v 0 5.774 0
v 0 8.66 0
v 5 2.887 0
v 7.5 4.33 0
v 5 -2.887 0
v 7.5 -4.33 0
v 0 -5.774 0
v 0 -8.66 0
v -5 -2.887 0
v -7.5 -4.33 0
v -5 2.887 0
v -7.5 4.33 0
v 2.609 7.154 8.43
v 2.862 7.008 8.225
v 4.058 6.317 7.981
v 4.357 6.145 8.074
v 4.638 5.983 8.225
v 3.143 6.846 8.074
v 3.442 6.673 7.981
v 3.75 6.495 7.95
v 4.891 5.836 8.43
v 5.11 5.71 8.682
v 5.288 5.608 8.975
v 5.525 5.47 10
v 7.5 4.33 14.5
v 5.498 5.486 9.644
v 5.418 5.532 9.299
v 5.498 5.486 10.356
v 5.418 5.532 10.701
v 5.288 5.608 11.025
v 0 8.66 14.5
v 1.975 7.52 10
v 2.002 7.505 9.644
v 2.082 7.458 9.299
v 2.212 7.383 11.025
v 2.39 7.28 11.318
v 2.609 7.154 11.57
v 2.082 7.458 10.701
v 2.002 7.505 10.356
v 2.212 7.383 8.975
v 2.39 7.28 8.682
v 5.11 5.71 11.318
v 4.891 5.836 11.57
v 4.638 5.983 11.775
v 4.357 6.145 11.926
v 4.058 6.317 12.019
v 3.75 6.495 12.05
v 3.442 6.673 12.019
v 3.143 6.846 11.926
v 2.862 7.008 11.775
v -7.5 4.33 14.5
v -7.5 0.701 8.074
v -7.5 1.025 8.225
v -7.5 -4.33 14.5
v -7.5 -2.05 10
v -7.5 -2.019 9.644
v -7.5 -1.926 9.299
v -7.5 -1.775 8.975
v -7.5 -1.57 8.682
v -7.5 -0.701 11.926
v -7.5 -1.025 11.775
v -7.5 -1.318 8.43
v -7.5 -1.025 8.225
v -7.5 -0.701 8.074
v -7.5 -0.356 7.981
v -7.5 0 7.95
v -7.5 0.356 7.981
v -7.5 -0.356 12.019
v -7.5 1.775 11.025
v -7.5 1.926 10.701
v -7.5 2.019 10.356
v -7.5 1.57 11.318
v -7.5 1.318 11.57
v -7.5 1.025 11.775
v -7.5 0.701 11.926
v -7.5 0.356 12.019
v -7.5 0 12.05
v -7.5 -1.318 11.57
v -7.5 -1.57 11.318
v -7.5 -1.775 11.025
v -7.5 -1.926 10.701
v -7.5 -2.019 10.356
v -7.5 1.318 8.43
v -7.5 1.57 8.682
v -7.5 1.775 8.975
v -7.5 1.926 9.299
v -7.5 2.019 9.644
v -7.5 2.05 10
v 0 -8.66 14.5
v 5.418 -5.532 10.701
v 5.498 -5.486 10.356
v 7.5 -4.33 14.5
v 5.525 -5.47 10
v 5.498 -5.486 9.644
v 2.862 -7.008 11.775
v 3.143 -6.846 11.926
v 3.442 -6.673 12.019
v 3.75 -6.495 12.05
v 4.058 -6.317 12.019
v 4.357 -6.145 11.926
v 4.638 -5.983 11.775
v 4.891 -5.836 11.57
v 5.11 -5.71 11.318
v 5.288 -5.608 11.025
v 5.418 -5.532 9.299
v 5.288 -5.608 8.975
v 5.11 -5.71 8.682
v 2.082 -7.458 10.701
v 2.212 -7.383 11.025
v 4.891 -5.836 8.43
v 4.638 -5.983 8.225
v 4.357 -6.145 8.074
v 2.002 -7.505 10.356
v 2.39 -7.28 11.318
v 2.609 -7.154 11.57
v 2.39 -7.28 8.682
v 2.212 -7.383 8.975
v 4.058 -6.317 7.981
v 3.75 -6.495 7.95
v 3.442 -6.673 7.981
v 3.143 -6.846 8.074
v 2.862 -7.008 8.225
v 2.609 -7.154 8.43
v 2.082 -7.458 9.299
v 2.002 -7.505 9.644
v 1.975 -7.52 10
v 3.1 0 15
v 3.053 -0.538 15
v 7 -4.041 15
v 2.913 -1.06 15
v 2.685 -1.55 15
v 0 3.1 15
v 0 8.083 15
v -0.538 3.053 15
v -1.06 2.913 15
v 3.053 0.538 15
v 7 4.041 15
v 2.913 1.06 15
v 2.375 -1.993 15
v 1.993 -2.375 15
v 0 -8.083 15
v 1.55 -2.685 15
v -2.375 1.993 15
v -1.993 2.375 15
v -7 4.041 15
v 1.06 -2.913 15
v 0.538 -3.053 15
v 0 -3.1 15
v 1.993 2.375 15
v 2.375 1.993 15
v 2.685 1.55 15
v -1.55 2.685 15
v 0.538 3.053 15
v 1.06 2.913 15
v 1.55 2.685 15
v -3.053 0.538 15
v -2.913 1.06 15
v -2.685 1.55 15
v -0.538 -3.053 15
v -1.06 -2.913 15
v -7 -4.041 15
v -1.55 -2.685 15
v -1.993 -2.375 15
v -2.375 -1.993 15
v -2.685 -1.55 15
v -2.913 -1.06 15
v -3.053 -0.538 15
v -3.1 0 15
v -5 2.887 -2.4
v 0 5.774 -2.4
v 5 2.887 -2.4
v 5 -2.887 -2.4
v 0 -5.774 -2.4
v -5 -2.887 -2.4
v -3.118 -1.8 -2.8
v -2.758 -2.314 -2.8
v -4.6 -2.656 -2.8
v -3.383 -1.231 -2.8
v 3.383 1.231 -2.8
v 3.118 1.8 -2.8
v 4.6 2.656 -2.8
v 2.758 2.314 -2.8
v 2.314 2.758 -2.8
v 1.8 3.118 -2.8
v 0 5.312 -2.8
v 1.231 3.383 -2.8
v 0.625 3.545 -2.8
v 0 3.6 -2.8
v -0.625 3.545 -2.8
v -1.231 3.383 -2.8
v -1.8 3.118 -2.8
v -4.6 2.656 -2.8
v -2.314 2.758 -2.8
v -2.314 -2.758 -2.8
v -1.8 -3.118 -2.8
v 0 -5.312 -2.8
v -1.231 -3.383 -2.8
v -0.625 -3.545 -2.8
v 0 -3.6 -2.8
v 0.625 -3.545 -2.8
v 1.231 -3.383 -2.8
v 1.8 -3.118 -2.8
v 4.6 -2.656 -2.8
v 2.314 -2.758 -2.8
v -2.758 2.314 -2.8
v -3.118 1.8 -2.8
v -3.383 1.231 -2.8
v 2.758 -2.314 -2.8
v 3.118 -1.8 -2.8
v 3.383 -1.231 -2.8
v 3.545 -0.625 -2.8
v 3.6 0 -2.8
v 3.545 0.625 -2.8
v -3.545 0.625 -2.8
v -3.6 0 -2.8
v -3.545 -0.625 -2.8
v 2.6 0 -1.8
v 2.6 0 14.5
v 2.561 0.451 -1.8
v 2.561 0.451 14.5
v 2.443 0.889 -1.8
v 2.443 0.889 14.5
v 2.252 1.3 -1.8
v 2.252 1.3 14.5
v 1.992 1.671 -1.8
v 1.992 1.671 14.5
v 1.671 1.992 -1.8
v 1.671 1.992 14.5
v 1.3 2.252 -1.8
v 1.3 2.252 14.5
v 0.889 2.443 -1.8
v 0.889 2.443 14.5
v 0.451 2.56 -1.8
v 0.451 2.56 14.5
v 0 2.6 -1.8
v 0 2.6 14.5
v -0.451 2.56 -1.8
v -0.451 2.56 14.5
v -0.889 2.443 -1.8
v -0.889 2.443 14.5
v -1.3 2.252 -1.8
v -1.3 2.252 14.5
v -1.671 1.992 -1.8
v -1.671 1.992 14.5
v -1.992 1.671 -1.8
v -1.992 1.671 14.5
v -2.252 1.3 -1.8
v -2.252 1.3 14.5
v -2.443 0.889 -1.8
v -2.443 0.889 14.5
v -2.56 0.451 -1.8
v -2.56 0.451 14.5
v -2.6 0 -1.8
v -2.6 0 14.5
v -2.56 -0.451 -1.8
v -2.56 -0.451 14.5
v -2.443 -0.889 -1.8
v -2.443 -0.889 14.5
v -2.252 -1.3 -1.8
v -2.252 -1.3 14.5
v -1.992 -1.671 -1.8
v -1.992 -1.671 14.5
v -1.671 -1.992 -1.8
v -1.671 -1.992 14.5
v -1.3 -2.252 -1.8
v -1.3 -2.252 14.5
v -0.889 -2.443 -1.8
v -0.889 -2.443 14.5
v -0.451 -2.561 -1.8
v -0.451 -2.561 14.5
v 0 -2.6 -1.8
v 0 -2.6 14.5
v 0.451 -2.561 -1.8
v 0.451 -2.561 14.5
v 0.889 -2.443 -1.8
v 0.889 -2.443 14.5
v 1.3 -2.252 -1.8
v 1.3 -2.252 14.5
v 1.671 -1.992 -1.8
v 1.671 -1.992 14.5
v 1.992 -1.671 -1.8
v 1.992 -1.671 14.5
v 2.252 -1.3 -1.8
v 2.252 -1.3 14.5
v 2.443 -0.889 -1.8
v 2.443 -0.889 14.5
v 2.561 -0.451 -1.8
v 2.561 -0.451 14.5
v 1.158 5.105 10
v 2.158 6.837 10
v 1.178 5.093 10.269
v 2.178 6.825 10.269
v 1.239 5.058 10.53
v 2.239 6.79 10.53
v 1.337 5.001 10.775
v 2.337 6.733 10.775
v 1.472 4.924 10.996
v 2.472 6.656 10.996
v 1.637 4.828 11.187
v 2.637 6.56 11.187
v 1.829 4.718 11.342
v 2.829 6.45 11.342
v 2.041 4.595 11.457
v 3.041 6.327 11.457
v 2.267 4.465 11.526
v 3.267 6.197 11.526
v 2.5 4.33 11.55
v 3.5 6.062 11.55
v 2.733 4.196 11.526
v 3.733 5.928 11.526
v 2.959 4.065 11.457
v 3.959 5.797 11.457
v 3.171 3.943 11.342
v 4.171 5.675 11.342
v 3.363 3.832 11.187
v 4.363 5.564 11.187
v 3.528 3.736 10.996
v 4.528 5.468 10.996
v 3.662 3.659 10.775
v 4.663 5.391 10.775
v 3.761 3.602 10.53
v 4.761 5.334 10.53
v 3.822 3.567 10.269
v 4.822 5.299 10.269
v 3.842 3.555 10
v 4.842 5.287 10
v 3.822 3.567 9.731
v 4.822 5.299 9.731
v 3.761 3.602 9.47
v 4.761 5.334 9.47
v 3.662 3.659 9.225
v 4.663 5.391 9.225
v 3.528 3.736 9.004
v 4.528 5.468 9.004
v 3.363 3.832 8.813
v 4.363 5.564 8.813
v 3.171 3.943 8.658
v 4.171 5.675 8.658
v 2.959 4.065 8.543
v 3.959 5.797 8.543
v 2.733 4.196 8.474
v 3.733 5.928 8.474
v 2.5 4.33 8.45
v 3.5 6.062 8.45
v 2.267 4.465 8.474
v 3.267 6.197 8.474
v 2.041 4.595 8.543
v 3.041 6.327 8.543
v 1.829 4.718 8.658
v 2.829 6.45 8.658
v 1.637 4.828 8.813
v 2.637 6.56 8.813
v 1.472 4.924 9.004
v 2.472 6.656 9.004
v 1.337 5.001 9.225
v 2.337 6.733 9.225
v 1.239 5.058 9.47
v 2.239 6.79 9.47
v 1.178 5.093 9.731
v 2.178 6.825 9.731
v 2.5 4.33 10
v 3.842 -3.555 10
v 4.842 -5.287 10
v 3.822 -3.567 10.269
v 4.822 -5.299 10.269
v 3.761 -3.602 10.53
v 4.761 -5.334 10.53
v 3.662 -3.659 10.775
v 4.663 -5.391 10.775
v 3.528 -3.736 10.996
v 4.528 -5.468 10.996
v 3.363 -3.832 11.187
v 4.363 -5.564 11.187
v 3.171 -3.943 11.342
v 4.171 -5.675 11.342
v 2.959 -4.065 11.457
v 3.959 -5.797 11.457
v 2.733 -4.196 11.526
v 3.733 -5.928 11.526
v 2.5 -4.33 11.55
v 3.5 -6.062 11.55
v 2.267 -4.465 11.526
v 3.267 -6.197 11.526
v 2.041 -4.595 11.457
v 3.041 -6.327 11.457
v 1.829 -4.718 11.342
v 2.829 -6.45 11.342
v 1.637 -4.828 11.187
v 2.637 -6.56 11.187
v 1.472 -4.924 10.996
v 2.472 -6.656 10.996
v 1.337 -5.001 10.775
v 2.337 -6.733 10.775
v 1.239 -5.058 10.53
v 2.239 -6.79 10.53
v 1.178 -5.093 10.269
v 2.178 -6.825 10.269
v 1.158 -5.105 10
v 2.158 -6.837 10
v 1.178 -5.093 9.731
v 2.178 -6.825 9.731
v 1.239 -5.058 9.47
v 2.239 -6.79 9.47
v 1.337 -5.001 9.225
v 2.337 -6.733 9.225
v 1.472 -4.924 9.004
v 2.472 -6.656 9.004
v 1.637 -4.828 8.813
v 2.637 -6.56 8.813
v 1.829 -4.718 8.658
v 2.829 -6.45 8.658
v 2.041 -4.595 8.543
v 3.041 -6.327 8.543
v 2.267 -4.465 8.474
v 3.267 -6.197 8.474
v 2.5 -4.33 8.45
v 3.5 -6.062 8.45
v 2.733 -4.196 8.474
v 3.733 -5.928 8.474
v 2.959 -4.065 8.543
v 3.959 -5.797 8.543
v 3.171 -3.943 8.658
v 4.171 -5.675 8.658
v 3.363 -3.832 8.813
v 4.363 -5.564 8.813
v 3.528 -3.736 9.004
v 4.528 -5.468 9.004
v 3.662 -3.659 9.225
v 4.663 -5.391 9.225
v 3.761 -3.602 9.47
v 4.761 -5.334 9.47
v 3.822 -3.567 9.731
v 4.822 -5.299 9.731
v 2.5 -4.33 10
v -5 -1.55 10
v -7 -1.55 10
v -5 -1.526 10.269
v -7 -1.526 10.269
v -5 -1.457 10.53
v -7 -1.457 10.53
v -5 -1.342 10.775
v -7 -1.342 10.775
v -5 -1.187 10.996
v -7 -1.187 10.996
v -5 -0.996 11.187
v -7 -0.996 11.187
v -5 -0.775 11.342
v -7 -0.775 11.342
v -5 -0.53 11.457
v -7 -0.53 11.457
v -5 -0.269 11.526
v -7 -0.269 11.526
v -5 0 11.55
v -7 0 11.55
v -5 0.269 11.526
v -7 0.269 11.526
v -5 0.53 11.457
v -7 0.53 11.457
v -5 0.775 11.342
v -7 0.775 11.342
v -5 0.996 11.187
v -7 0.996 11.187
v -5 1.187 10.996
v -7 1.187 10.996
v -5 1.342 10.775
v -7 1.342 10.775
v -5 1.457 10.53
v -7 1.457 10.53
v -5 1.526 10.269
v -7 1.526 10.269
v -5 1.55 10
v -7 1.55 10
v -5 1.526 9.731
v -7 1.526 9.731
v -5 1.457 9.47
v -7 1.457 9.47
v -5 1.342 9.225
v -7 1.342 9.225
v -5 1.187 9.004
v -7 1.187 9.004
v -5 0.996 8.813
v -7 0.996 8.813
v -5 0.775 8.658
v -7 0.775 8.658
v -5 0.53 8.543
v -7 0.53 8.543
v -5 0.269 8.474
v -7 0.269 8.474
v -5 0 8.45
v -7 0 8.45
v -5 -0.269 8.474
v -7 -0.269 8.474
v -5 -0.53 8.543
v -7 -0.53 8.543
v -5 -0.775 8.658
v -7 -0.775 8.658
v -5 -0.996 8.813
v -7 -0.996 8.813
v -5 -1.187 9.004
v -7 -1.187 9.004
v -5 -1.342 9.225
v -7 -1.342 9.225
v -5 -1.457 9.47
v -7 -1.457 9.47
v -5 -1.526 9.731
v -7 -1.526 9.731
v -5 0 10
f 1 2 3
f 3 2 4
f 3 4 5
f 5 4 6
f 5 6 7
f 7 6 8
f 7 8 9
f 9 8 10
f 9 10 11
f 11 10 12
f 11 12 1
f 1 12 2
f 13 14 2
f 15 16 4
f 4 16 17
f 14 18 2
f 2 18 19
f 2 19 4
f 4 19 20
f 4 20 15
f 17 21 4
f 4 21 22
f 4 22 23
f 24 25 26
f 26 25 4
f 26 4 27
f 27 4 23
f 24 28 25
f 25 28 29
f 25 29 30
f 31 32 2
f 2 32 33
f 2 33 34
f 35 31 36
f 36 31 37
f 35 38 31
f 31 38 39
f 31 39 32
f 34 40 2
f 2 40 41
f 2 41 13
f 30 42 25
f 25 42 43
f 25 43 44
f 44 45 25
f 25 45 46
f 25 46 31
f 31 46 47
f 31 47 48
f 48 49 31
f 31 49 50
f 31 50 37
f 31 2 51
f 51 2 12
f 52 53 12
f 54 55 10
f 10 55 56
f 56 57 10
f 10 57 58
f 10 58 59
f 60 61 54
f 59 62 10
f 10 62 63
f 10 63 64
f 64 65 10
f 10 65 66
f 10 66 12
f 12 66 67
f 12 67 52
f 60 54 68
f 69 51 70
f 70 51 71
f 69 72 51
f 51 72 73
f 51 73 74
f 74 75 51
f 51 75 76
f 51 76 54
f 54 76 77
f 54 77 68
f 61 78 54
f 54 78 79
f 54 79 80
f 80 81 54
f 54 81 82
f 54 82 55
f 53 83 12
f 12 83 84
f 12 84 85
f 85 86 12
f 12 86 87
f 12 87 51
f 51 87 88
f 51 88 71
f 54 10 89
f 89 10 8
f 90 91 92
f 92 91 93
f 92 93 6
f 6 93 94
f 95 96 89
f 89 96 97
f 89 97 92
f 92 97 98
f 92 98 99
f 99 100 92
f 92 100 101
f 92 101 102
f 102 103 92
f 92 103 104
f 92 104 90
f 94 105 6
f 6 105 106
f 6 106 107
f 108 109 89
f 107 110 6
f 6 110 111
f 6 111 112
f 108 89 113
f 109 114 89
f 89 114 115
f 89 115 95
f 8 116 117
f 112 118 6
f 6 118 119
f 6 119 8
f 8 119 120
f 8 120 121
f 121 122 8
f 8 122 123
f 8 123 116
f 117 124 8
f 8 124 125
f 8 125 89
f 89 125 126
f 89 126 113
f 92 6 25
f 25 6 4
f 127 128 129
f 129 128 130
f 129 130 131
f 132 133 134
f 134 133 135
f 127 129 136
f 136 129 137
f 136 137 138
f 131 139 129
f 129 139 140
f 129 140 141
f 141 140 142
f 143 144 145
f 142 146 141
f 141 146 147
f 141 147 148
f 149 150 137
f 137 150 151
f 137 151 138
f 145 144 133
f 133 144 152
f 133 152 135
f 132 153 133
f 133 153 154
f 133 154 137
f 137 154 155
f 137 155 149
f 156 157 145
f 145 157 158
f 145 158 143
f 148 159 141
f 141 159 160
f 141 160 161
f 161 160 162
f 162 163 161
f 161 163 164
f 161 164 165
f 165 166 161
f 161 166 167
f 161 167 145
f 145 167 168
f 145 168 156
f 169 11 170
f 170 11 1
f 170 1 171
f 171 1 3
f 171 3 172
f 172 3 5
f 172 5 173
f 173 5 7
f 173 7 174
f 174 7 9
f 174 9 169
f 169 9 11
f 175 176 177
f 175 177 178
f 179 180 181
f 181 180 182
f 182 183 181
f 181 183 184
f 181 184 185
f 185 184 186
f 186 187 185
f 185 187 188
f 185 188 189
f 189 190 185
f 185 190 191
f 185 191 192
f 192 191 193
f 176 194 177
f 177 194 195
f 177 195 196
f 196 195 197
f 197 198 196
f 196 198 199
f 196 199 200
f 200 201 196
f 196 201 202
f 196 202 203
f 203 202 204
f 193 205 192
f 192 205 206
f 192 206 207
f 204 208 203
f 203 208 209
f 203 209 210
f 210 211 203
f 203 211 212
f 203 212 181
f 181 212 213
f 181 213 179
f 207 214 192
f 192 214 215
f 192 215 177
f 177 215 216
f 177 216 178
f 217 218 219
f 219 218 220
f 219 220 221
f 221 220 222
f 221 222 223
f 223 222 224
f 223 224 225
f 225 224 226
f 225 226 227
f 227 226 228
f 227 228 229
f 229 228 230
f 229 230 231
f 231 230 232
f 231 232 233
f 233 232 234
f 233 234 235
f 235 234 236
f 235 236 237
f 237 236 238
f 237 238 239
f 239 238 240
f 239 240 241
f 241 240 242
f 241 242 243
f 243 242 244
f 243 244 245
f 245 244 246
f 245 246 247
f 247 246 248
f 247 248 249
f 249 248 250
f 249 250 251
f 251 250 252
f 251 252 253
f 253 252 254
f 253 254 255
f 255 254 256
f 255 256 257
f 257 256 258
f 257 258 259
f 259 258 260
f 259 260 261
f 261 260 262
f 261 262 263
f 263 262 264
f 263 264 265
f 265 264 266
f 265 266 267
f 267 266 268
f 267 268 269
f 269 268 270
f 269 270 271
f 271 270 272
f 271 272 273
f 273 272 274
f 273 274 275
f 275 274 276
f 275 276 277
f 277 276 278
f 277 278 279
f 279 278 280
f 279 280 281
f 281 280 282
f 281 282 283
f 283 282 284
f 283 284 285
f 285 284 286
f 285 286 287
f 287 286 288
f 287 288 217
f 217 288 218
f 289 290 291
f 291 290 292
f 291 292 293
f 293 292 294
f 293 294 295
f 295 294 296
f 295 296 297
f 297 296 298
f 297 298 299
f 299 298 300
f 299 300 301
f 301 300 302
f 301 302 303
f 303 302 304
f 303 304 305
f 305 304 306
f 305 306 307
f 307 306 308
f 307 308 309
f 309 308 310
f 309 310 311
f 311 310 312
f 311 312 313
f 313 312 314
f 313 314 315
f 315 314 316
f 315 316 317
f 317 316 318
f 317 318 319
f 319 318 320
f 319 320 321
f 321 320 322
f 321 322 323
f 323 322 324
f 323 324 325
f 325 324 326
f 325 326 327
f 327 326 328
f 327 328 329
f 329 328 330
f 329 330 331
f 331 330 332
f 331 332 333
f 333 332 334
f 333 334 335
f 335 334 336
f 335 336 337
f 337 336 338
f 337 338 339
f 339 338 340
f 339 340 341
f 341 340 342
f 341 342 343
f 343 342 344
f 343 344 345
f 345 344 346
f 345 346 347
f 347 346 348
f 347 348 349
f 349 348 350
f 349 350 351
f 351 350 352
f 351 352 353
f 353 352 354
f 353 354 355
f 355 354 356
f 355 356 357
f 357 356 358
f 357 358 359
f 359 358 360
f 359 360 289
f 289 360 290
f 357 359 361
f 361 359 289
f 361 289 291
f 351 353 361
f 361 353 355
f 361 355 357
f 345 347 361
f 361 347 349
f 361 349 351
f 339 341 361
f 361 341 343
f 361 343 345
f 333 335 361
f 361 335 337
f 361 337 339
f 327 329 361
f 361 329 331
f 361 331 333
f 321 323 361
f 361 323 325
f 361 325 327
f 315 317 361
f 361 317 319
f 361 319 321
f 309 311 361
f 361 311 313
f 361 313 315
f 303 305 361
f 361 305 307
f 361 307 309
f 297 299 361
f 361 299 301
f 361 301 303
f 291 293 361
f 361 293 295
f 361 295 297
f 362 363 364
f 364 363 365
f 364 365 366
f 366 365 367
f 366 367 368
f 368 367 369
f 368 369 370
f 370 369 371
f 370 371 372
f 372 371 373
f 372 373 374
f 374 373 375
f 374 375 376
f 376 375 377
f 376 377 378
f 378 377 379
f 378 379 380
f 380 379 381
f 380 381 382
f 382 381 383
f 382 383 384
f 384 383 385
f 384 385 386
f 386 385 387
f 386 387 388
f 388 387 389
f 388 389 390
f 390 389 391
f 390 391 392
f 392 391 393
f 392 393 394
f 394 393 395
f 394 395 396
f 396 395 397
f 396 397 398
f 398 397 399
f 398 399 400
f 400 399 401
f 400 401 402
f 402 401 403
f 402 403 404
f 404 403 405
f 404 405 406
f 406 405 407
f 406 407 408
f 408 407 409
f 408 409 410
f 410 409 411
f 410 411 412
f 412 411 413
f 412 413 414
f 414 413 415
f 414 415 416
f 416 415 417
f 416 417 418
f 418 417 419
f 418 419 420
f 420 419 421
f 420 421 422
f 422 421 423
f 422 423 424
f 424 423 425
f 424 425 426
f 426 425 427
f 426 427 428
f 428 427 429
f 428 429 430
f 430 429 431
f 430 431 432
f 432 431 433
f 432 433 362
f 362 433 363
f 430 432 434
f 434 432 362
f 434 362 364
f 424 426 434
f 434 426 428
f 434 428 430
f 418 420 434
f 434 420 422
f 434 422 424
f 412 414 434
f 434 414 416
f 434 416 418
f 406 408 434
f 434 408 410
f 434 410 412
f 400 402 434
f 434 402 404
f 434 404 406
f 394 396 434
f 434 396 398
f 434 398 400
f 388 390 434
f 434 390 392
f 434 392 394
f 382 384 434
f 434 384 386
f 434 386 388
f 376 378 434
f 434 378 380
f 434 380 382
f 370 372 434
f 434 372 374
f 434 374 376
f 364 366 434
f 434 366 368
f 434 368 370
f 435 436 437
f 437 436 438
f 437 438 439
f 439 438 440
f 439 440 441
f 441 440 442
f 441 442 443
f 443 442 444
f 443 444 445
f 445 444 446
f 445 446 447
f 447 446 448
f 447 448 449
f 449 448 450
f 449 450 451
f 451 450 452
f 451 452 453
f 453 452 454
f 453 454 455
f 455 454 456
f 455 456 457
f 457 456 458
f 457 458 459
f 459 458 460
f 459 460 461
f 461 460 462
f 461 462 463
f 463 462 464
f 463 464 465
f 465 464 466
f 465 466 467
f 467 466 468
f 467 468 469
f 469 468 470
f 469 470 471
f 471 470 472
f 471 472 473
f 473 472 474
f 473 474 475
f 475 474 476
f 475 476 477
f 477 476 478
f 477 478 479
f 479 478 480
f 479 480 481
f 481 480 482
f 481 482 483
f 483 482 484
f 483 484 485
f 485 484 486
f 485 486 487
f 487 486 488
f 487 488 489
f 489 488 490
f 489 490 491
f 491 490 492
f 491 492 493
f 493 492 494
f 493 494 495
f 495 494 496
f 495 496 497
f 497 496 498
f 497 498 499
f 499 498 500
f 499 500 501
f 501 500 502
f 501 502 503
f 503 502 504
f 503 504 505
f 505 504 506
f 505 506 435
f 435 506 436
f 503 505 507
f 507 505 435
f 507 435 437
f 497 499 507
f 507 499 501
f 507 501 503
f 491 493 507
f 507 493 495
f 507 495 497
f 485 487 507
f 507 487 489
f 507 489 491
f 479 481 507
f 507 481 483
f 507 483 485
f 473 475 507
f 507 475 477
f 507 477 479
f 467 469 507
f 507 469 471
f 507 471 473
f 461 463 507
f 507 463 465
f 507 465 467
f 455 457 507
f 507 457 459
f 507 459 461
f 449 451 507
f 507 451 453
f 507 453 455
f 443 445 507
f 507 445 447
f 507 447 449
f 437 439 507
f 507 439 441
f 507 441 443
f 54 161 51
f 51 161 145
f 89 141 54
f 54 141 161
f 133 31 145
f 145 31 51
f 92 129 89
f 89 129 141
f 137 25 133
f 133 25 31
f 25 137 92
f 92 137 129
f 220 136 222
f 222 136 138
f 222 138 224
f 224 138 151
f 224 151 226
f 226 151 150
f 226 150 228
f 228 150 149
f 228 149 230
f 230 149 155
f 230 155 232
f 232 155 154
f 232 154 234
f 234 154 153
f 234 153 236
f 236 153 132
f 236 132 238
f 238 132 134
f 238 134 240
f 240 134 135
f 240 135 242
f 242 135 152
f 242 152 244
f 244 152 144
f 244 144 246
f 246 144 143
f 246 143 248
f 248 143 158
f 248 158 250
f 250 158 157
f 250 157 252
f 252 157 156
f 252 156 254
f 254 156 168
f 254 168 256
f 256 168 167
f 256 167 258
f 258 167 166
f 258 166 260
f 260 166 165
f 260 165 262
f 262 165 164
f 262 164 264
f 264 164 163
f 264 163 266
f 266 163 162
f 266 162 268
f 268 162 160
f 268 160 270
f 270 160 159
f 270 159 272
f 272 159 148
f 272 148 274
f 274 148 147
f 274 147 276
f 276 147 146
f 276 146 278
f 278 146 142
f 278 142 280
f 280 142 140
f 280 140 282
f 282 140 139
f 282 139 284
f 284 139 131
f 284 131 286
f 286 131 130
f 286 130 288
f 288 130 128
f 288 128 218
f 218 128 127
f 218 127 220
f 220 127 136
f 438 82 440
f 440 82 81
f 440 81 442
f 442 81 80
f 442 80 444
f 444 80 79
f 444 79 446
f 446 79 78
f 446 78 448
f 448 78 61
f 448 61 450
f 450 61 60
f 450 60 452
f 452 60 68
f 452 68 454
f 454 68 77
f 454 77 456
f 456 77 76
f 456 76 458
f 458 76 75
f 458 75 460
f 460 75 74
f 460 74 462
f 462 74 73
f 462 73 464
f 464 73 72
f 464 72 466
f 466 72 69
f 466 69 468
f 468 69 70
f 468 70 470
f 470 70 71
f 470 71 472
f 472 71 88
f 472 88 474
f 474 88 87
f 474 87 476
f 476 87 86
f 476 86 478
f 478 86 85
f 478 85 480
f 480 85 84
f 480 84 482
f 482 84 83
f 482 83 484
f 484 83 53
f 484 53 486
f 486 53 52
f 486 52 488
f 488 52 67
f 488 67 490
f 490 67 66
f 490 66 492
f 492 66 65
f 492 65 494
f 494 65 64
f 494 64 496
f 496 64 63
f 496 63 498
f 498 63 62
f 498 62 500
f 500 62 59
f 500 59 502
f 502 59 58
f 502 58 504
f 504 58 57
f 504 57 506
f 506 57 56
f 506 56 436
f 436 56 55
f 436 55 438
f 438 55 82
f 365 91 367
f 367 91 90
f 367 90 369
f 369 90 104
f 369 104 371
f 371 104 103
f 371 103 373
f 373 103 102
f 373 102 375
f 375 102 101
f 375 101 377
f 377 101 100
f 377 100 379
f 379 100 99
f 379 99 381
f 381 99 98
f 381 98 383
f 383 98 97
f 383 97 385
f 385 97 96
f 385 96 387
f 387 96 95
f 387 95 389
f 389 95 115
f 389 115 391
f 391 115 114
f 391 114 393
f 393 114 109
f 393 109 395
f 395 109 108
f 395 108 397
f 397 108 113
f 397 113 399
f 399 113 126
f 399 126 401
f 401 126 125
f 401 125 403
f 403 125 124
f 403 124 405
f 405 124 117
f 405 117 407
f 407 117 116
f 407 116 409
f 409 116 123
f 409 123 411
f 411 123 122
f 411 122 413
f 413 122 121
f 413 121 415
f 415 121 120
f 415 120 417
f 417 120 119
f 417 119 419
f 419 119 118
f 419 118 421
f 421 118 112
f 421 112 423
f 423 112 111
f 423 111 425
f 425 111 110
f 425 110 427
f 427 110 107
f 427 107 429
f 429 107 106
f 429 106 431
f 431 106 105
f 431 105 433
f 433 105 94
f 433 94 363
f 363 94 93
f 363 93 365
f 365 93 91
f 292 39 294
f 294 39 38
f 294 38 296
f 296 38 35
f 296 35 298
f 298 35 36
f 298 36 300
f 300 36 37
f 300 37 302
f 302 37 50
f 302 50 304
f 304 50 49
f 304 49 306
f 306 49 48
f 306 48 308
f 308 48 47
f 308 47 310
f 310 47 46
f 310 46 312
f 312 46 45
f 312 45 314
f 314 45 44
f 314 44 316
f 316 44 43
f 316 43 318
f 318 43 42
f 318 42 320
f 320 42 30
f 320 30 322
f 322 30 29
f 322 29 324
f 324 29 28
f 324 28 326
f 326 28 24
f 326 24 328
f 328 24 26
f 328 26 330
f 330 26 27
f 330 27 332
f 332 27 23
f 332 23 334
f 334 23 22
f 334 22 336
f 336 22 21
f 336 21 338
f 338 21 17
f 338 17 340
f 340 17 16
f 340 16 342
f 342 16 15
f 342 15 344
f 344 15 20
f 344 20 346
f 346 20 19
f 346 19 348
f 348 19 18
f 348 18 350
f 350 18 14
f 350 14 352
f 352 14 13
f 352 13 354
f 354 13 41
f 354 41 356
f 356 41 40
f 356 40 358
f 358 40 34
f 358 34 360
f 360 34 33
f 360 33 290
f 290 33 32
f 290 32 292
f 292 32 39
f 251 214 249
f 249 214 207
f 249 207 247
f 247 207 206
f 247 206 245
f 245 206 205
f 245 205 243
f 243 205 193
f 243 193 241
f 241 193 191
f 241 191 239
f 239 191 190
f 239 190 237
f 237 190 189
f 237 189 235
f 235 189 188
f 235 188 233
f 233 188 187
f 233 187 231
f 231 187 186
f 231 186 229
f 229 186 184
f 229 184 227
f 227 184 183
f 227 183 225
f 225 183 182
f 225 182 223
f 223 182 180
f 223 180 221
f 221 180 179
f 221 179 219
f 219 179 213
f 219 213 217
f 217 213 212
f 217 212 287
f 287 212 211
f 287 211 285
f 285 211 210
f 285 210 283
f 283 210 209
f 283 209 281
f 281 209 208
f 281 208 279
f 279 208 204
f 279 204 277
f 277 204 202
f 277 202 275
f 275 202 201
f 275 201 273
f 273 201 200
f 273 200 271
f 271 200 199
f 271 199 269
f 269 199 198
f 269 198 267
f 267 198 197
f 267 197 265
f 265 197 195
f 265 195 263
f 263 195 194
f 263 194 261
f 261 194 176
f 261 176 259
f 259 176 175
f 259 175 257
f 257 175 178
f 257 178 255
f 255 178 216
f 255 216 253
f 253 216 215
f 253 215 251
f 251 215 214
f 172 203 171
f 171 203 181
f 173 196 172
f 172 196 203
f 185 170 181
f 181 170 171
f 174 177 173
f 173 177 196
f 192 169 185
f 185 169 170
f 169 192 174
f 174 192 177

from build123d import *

# Parameters (mm, degrees)
BOSS_EXTRUDE1_DEPTH = 15
BOSS_EXTRUDE2_DEPTH = 2.8
SKETCH2_R           = 2.6
CUT_EXTRUDE1_DEPTH  = 22.168136432
SKETCH4_R           = 1.55
CUT_EXTRUDE3_DEPTH  = 2.5
CIRPATTERN1_COUNT   = 3
CHAMFER1_SIZE       = 0.5
CHAMFER2_SIZE       = 0.5
CHAMFER3_SIZE       = 1
CHAMFER4_SIZE       = 0.4


with BuildPart() as part:
    # Sketch1 → Boss-Extrude1 (new body)
    with BuildSketch(Plane.XY):
        Polygon((0, 8.660254038), (-7.5, 4.330127019), (-7.5, -4.330127019), (0, -8.660254038), (7.5, -4.330127019), (7.5, 4.330127019), align=None)
    extrude(amount=BOSS_EXTRUDE1_DEPTH)

    # Sketch3 → Boss-Extrude2 (add)
    with BuildSketch(Plane(origin=(0, 0, 0), x_dir=(-1, 0, 0), z_dir=(0, 0, -1))):
        Polygon((0, 5.773502692), (-5, 2.886751346), (-5, -2.886751346), (0, -5.773502692), (5, -2.886751346), (5, 2.886751346), align=None)
    extrude(amount=BOSS_EXTRUDE2_DEPTH)

    # Sketch2 → Cut-Extrude1 (cut, through all)
    with BuildSketch(Plane.XY.offset(15)):
        Circle(SKETCH2_R)
    extrude(amount=-CUT_EXTRUDE1_DEPTH, mode=Mode.SUBTRACT)

    # Sketch4 → Cut-Extrude3 (cut)
    with BuildSketch(Plane(origin=(3.75, 6.495190528, 0), x_dir=(0.8660254037844417, -0.4999999999999949, 0), z_dir=(0.4999999999999949, 0.8660254037844417, 0))):
        with Locations((0, -10)):
            Circle(SKETCH4_R)
    cut_extrude3 = extrude(amount=-CUT_EXTRUDE3_DEPTH, mode=Mode.SUBTRACT)

    # CirPattern1: Cut-Extrude3 ×3 about axis
    cirpattern1_axis = Axis((0, 0, 15), (0, 0, 1))
    for i in range(1, CIRPATTERN1_COUNT):
        add(cut_extrude3.rotate(cirpattern1_axis, i * 360 / CIRPATTERN1_COUNT), mode=Mode.SUBTRACT)

    # Chamfer1
    chamfer1_edges = [part.edges().sort_by_distance(p)[0] for p in [
        (7.5, 0, 15),
        (3.75, -6.495190528, 15),
        (-3.75, -6.495190528, 15),
        (-7.5, 0, 15),
        (-3.75, 6.495190528, 15),
        (3.75, 6.495190528, 15),
        (-2.6, 0, 15),
    ]]
    chamfer(chamfer1_edges, length=CHAMFER1_SIZE)

    # Chamfer2
    chamfer2_edges = [part.edges().sort_by_distance(p)[0] for p in [
        (-7.5, -1.55, 10),
        (5.092339376, -5.720190528, 10),
        (2.407660624, 7.270190528, 10),
    ]]
    chamfer(chamfer2_edges, length=CHAMFER2_SIZE)

    # Chamfer3
    chamfer3_edges = [part.edges().sort_by_distance(p)[0] for p in [
        (-2.6, 0, -2.8),
    ]]
    chamfer(chamfer3_edges, length=CHAMFER3_SIZE)

    # Chamfer4
    chamfer4_edges = [part.edges().sort_by_distance(p)[0] for p in [
        (-5, 0, -2.8),
        (-2.5, -4.330127019, -2.8),
        (2.5, -4.330127019, -2.8),
        (5, 0, -2.8),
        (2.5, 4.330127019, -2.8),
        (-2.5, 4.330127019, -2.8),
    ]]
    chamfer(chamfer4_edges, length=CHAMFER4_SIZE)


solid = part.part
